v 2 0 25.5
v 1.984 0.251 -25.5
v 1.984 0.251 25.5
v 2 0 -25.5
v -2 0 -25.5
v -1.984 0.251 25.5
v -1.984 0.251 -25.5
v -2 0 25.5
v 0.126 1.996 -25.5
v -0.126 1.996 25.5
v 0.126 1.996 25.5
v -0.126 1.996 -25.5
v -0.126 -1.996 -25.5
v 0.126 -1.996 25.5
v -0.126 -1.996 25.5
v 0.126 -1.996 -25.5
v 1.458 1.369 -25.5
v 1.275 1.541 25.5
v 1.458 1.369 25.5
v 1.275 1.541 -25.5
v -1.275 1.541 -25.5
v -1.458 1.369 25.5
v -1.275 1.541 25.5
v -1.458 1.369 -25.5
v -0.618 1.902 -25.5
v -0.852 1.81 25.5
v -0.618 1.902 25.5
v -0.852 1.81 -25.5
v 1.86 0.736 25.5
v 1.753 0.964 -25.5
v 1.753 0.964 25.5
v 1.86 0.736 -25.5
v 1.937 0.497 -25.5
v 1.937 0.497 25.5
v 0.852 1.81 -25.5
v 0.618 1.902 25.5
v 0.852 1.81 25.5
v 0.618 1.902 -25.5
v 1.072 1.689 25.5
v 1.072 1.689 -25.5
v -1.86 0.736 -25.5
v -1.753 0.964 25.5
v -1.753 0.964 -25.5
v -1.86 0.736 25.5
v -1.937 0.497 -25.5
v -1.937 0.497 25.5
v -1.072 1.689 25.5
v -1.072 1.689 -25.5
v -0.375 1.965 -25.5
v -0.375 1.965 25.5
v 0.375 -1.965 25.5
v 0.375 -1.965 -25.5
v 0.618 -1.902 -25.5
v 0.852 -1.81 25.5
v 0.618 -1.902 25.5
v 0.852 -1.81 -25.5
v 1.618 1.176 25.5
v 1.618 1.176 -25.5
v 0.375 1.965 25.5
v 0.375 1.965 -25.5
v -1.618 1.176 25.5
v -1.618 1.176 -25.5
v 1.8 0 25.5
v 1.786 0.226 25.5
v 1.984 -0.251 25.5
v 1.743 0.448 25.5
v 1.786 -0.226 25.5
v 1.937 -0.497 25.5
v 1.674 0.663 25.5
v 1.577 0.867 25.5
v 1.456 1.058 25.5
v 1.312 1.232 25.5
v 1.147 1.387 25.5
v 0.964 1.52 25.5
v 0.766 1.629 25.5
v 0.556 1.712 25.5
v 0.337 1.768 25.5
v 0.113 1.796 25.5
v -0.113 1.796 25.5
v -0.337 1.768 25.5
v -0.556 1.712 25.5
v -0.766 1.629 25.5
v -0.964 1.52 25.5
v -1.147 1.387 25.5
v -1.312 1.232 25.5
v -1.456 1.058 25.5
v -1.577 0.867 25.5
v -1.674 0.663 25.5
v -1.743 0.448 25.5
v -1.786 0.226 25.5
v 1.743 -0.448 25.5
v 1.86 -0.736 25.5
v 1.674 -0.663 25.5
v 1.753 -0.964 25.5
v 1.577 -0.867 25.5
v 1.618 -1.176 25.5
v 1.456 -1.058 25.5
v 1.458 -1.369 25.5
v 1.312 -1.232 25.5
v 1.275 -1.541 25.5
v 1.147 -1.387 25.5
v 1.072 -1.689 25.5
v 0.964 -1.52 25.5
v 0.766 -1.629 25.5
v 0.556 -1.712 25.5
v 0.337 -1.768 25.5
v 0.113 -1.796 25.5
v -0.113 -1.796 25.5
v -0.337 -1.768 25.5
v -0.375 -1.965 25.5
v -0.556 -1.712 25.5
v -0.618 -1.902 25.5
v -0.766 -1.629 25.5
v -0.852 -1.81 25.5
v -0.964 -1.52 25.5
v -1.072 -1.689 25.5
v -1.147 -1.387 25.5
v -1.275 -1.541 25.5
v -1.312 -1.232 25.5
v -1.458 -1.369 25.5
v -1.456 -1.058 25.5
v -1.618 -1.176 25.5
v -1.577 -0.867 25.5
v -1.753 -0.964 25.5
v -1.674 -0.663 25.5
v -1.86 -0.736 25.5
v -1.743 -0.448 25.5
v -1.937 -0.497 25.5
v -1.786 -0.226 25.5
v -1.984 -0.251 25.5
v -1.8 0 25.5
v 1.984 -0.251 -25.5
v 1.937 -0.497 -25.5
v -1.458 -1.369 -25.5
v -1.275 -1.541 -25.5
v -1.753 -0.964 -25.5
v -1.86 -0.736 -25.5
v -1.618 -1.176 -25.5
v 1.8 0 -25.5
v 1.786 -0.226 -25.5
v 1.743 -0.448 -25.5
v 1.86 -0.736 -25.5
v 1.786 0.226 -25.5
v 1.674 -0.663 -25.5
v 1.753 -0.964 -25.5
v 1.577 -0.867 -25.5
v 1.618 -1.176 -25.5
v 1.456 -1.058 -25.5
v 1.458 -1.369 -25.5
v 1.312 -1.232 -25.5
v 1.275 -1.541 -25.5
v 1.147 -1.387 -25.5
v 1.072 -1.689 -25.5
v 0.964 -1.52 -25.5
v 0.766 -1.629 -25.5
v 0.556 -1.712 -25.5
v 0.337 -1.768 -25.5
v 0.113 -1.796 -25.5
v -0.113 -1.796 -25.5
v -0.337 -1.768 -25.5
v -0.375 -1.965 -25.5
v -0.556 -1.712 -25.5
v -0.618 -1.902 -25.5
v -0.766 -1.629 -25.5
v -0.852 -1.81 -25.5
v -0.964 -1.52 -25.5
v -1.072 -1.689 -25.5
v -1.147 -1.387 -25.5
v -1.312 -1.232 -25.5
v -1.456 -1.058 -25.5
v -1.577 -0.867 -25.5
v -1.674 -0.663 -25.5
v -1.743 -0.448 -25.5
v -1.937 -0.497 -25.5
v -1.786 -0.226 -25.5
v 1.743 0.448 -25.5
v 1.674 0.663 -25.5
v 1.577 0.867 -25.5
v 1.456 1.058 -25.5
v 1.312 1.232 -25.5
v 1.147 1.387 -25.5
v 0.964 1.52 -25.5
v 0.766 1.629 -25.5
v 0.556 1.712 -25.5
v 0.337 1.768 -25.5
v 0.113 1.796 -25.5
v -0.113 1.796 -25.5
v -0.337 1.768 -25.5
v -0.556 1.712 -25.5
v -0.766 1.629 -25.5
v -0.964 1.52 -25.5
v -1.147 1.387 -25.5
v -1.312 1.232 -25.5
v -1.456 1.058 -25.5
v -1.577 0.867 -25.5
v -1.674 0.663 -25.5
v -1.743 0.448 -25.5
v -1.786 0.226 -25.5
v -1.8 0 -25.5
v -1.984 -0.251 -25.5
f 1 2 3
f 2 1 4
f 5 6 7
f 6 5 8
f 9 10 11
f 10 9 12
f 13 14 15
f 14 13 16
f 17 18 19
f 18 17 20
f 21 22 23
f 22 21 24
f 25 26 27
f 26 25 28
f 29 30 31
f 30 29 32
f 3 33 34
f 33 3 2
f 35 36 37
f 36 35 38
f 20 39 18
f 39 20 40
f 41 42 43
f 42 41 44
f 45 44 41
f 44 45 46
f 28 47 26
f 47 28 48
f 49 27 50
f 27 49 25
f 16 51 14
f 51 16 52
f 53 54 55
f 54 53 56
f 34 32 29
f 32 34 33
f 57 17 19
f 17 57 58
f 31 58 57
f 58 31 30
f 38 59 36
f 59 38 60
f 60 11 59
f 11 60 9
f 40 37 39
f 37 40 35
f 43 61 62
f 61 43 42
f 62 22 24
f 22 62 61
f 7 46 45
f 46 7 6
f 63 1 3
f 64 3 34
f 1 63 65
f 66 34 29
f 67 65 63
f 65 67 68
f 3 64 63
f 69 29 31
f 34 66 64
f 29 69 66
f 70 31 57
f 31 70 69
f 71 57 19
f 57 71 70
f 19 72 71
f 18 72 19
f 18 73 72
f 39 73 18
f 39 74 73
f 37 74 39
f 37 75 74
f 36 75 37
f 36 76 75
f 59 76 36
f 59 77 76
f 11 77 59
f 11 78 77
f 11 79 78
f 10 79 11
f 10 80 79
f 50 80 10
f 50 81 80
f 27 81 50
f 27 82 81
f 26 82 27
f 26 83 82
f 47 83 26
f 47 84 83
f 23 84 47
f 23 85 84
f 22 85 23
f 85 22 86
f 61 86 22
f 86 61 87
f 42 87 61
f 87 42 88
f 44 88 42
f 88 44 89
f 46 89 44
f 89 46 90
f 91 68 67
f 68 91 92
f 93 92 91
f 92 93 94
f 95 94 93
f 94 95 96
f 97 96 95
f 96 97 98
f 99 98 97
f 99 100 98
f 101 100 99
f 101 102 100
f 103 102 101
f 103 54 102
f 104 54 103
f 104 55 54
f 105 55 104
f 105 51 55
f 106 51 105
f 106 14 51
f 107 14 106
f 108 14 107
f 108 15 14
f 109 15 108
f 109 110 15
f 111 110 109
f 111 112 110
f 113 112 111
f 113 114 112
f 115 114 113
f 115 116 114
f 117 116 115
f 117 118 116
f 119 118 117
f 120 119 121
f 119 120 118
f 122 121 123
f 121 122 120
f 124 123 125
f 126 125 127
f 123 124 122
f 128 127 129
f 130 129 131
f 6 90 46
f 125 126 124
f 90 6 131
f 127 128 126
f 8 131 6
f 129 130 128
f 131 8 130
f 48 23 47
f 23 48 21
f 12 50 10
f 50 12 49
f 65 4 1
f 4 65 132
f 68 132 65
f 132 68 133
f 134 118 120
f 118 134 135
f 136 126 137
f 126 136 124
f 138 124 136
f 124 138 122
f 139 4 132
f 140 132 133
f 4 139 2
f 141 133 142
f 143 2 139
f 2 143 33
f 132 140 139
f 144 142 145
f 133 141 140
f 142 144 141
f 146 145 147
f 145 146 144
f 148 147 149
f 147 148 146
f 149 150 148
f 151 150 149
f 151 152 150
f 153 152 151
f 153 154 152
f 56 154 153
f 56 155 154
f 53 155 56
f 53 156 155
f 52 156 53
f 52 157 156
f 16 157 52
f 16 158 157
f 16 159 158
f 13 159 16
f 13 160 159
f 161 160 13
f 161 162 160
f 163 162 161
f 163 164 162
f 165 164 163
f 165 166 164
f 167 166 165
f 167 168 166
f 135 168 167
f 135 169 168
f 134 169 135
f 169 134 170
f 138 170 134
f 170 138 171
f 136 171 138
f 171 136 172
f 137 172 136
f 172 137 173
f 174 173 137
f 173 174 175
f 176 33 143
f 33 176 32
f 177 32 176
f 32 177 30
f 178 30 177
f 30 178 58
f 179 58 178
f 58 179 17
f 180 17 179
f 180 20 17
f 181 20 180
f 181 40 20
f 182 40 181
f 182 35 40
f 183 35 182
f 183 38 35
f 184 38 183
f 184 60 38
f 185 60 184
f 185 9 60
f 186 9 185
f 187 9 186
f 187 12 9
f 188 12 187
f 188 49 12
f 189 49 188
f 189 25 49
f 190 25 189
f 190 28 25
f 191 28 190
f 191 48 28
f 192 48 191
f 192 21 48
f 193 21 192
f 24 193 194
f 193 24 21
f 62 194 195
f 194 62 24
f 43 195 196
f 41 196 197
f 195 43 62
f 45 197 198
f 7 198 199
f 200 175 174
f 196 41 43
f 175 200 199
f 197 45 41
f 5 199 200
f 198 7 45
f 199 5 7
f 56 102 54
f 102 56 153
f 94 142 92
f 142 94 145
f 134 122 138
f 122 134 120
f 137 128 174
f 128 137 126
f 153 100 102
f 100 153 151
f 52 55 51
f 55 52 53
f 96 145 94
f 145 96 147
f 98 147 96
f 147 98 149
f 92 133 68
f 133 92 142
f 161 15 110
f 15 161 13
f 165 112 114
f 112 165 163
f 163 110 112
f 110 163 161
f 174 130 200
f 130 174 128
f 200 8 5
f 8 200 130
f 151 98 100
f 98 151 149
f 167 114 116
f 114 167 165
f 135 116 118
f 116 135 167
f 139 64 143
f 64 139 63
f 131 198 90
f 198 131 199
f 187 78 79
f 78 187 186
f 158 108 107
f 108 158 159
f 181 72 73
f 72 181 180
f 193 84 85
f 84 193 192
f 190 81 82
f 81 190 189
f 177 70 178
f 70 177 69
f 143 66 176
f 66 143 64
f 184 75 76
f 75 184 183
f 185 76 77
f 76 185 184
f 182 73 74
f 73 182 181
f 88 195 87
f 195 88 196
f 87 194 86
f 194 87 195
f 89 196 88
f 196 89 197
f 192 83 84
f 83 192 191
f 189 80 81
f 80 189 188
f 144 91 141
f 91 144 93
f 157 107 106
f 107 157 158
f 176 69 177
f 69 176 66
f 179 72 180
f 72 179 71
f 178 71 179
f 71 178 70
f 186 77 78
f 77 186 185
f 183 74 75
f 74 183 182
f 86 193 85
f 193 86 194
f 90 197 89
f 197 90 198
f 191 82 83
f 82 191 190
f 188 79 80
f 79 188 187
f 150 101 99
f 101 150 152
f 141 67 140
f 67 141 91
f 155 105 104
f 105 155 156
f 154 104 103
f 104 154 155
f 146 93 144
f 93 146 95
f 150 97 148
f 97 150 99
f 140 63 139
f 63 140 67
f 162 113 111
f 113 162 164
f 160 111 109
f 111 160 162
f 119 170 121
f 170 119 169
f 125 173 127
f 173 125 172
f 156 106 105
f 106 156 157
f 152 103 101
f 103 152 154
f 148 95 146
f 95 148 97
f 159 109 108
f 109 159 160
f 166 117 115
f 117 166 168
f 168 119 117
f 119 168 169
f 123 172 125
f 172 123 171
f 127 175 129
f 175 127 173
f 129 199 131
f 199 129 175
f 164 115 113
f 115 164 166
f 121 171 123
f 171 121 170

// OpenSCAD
$fn = 50;


difference() {
	union() {
		translate(v = [0, 0, -25.5000000000]) {
			cylinder(h = 51, r = 2.0000000000);
		}
	}
	union() {
		translate(v = [0, 0, -100.0000000000]) {
			cylinder(h = 200, r = 1.8000000000);
		}
	}
}
